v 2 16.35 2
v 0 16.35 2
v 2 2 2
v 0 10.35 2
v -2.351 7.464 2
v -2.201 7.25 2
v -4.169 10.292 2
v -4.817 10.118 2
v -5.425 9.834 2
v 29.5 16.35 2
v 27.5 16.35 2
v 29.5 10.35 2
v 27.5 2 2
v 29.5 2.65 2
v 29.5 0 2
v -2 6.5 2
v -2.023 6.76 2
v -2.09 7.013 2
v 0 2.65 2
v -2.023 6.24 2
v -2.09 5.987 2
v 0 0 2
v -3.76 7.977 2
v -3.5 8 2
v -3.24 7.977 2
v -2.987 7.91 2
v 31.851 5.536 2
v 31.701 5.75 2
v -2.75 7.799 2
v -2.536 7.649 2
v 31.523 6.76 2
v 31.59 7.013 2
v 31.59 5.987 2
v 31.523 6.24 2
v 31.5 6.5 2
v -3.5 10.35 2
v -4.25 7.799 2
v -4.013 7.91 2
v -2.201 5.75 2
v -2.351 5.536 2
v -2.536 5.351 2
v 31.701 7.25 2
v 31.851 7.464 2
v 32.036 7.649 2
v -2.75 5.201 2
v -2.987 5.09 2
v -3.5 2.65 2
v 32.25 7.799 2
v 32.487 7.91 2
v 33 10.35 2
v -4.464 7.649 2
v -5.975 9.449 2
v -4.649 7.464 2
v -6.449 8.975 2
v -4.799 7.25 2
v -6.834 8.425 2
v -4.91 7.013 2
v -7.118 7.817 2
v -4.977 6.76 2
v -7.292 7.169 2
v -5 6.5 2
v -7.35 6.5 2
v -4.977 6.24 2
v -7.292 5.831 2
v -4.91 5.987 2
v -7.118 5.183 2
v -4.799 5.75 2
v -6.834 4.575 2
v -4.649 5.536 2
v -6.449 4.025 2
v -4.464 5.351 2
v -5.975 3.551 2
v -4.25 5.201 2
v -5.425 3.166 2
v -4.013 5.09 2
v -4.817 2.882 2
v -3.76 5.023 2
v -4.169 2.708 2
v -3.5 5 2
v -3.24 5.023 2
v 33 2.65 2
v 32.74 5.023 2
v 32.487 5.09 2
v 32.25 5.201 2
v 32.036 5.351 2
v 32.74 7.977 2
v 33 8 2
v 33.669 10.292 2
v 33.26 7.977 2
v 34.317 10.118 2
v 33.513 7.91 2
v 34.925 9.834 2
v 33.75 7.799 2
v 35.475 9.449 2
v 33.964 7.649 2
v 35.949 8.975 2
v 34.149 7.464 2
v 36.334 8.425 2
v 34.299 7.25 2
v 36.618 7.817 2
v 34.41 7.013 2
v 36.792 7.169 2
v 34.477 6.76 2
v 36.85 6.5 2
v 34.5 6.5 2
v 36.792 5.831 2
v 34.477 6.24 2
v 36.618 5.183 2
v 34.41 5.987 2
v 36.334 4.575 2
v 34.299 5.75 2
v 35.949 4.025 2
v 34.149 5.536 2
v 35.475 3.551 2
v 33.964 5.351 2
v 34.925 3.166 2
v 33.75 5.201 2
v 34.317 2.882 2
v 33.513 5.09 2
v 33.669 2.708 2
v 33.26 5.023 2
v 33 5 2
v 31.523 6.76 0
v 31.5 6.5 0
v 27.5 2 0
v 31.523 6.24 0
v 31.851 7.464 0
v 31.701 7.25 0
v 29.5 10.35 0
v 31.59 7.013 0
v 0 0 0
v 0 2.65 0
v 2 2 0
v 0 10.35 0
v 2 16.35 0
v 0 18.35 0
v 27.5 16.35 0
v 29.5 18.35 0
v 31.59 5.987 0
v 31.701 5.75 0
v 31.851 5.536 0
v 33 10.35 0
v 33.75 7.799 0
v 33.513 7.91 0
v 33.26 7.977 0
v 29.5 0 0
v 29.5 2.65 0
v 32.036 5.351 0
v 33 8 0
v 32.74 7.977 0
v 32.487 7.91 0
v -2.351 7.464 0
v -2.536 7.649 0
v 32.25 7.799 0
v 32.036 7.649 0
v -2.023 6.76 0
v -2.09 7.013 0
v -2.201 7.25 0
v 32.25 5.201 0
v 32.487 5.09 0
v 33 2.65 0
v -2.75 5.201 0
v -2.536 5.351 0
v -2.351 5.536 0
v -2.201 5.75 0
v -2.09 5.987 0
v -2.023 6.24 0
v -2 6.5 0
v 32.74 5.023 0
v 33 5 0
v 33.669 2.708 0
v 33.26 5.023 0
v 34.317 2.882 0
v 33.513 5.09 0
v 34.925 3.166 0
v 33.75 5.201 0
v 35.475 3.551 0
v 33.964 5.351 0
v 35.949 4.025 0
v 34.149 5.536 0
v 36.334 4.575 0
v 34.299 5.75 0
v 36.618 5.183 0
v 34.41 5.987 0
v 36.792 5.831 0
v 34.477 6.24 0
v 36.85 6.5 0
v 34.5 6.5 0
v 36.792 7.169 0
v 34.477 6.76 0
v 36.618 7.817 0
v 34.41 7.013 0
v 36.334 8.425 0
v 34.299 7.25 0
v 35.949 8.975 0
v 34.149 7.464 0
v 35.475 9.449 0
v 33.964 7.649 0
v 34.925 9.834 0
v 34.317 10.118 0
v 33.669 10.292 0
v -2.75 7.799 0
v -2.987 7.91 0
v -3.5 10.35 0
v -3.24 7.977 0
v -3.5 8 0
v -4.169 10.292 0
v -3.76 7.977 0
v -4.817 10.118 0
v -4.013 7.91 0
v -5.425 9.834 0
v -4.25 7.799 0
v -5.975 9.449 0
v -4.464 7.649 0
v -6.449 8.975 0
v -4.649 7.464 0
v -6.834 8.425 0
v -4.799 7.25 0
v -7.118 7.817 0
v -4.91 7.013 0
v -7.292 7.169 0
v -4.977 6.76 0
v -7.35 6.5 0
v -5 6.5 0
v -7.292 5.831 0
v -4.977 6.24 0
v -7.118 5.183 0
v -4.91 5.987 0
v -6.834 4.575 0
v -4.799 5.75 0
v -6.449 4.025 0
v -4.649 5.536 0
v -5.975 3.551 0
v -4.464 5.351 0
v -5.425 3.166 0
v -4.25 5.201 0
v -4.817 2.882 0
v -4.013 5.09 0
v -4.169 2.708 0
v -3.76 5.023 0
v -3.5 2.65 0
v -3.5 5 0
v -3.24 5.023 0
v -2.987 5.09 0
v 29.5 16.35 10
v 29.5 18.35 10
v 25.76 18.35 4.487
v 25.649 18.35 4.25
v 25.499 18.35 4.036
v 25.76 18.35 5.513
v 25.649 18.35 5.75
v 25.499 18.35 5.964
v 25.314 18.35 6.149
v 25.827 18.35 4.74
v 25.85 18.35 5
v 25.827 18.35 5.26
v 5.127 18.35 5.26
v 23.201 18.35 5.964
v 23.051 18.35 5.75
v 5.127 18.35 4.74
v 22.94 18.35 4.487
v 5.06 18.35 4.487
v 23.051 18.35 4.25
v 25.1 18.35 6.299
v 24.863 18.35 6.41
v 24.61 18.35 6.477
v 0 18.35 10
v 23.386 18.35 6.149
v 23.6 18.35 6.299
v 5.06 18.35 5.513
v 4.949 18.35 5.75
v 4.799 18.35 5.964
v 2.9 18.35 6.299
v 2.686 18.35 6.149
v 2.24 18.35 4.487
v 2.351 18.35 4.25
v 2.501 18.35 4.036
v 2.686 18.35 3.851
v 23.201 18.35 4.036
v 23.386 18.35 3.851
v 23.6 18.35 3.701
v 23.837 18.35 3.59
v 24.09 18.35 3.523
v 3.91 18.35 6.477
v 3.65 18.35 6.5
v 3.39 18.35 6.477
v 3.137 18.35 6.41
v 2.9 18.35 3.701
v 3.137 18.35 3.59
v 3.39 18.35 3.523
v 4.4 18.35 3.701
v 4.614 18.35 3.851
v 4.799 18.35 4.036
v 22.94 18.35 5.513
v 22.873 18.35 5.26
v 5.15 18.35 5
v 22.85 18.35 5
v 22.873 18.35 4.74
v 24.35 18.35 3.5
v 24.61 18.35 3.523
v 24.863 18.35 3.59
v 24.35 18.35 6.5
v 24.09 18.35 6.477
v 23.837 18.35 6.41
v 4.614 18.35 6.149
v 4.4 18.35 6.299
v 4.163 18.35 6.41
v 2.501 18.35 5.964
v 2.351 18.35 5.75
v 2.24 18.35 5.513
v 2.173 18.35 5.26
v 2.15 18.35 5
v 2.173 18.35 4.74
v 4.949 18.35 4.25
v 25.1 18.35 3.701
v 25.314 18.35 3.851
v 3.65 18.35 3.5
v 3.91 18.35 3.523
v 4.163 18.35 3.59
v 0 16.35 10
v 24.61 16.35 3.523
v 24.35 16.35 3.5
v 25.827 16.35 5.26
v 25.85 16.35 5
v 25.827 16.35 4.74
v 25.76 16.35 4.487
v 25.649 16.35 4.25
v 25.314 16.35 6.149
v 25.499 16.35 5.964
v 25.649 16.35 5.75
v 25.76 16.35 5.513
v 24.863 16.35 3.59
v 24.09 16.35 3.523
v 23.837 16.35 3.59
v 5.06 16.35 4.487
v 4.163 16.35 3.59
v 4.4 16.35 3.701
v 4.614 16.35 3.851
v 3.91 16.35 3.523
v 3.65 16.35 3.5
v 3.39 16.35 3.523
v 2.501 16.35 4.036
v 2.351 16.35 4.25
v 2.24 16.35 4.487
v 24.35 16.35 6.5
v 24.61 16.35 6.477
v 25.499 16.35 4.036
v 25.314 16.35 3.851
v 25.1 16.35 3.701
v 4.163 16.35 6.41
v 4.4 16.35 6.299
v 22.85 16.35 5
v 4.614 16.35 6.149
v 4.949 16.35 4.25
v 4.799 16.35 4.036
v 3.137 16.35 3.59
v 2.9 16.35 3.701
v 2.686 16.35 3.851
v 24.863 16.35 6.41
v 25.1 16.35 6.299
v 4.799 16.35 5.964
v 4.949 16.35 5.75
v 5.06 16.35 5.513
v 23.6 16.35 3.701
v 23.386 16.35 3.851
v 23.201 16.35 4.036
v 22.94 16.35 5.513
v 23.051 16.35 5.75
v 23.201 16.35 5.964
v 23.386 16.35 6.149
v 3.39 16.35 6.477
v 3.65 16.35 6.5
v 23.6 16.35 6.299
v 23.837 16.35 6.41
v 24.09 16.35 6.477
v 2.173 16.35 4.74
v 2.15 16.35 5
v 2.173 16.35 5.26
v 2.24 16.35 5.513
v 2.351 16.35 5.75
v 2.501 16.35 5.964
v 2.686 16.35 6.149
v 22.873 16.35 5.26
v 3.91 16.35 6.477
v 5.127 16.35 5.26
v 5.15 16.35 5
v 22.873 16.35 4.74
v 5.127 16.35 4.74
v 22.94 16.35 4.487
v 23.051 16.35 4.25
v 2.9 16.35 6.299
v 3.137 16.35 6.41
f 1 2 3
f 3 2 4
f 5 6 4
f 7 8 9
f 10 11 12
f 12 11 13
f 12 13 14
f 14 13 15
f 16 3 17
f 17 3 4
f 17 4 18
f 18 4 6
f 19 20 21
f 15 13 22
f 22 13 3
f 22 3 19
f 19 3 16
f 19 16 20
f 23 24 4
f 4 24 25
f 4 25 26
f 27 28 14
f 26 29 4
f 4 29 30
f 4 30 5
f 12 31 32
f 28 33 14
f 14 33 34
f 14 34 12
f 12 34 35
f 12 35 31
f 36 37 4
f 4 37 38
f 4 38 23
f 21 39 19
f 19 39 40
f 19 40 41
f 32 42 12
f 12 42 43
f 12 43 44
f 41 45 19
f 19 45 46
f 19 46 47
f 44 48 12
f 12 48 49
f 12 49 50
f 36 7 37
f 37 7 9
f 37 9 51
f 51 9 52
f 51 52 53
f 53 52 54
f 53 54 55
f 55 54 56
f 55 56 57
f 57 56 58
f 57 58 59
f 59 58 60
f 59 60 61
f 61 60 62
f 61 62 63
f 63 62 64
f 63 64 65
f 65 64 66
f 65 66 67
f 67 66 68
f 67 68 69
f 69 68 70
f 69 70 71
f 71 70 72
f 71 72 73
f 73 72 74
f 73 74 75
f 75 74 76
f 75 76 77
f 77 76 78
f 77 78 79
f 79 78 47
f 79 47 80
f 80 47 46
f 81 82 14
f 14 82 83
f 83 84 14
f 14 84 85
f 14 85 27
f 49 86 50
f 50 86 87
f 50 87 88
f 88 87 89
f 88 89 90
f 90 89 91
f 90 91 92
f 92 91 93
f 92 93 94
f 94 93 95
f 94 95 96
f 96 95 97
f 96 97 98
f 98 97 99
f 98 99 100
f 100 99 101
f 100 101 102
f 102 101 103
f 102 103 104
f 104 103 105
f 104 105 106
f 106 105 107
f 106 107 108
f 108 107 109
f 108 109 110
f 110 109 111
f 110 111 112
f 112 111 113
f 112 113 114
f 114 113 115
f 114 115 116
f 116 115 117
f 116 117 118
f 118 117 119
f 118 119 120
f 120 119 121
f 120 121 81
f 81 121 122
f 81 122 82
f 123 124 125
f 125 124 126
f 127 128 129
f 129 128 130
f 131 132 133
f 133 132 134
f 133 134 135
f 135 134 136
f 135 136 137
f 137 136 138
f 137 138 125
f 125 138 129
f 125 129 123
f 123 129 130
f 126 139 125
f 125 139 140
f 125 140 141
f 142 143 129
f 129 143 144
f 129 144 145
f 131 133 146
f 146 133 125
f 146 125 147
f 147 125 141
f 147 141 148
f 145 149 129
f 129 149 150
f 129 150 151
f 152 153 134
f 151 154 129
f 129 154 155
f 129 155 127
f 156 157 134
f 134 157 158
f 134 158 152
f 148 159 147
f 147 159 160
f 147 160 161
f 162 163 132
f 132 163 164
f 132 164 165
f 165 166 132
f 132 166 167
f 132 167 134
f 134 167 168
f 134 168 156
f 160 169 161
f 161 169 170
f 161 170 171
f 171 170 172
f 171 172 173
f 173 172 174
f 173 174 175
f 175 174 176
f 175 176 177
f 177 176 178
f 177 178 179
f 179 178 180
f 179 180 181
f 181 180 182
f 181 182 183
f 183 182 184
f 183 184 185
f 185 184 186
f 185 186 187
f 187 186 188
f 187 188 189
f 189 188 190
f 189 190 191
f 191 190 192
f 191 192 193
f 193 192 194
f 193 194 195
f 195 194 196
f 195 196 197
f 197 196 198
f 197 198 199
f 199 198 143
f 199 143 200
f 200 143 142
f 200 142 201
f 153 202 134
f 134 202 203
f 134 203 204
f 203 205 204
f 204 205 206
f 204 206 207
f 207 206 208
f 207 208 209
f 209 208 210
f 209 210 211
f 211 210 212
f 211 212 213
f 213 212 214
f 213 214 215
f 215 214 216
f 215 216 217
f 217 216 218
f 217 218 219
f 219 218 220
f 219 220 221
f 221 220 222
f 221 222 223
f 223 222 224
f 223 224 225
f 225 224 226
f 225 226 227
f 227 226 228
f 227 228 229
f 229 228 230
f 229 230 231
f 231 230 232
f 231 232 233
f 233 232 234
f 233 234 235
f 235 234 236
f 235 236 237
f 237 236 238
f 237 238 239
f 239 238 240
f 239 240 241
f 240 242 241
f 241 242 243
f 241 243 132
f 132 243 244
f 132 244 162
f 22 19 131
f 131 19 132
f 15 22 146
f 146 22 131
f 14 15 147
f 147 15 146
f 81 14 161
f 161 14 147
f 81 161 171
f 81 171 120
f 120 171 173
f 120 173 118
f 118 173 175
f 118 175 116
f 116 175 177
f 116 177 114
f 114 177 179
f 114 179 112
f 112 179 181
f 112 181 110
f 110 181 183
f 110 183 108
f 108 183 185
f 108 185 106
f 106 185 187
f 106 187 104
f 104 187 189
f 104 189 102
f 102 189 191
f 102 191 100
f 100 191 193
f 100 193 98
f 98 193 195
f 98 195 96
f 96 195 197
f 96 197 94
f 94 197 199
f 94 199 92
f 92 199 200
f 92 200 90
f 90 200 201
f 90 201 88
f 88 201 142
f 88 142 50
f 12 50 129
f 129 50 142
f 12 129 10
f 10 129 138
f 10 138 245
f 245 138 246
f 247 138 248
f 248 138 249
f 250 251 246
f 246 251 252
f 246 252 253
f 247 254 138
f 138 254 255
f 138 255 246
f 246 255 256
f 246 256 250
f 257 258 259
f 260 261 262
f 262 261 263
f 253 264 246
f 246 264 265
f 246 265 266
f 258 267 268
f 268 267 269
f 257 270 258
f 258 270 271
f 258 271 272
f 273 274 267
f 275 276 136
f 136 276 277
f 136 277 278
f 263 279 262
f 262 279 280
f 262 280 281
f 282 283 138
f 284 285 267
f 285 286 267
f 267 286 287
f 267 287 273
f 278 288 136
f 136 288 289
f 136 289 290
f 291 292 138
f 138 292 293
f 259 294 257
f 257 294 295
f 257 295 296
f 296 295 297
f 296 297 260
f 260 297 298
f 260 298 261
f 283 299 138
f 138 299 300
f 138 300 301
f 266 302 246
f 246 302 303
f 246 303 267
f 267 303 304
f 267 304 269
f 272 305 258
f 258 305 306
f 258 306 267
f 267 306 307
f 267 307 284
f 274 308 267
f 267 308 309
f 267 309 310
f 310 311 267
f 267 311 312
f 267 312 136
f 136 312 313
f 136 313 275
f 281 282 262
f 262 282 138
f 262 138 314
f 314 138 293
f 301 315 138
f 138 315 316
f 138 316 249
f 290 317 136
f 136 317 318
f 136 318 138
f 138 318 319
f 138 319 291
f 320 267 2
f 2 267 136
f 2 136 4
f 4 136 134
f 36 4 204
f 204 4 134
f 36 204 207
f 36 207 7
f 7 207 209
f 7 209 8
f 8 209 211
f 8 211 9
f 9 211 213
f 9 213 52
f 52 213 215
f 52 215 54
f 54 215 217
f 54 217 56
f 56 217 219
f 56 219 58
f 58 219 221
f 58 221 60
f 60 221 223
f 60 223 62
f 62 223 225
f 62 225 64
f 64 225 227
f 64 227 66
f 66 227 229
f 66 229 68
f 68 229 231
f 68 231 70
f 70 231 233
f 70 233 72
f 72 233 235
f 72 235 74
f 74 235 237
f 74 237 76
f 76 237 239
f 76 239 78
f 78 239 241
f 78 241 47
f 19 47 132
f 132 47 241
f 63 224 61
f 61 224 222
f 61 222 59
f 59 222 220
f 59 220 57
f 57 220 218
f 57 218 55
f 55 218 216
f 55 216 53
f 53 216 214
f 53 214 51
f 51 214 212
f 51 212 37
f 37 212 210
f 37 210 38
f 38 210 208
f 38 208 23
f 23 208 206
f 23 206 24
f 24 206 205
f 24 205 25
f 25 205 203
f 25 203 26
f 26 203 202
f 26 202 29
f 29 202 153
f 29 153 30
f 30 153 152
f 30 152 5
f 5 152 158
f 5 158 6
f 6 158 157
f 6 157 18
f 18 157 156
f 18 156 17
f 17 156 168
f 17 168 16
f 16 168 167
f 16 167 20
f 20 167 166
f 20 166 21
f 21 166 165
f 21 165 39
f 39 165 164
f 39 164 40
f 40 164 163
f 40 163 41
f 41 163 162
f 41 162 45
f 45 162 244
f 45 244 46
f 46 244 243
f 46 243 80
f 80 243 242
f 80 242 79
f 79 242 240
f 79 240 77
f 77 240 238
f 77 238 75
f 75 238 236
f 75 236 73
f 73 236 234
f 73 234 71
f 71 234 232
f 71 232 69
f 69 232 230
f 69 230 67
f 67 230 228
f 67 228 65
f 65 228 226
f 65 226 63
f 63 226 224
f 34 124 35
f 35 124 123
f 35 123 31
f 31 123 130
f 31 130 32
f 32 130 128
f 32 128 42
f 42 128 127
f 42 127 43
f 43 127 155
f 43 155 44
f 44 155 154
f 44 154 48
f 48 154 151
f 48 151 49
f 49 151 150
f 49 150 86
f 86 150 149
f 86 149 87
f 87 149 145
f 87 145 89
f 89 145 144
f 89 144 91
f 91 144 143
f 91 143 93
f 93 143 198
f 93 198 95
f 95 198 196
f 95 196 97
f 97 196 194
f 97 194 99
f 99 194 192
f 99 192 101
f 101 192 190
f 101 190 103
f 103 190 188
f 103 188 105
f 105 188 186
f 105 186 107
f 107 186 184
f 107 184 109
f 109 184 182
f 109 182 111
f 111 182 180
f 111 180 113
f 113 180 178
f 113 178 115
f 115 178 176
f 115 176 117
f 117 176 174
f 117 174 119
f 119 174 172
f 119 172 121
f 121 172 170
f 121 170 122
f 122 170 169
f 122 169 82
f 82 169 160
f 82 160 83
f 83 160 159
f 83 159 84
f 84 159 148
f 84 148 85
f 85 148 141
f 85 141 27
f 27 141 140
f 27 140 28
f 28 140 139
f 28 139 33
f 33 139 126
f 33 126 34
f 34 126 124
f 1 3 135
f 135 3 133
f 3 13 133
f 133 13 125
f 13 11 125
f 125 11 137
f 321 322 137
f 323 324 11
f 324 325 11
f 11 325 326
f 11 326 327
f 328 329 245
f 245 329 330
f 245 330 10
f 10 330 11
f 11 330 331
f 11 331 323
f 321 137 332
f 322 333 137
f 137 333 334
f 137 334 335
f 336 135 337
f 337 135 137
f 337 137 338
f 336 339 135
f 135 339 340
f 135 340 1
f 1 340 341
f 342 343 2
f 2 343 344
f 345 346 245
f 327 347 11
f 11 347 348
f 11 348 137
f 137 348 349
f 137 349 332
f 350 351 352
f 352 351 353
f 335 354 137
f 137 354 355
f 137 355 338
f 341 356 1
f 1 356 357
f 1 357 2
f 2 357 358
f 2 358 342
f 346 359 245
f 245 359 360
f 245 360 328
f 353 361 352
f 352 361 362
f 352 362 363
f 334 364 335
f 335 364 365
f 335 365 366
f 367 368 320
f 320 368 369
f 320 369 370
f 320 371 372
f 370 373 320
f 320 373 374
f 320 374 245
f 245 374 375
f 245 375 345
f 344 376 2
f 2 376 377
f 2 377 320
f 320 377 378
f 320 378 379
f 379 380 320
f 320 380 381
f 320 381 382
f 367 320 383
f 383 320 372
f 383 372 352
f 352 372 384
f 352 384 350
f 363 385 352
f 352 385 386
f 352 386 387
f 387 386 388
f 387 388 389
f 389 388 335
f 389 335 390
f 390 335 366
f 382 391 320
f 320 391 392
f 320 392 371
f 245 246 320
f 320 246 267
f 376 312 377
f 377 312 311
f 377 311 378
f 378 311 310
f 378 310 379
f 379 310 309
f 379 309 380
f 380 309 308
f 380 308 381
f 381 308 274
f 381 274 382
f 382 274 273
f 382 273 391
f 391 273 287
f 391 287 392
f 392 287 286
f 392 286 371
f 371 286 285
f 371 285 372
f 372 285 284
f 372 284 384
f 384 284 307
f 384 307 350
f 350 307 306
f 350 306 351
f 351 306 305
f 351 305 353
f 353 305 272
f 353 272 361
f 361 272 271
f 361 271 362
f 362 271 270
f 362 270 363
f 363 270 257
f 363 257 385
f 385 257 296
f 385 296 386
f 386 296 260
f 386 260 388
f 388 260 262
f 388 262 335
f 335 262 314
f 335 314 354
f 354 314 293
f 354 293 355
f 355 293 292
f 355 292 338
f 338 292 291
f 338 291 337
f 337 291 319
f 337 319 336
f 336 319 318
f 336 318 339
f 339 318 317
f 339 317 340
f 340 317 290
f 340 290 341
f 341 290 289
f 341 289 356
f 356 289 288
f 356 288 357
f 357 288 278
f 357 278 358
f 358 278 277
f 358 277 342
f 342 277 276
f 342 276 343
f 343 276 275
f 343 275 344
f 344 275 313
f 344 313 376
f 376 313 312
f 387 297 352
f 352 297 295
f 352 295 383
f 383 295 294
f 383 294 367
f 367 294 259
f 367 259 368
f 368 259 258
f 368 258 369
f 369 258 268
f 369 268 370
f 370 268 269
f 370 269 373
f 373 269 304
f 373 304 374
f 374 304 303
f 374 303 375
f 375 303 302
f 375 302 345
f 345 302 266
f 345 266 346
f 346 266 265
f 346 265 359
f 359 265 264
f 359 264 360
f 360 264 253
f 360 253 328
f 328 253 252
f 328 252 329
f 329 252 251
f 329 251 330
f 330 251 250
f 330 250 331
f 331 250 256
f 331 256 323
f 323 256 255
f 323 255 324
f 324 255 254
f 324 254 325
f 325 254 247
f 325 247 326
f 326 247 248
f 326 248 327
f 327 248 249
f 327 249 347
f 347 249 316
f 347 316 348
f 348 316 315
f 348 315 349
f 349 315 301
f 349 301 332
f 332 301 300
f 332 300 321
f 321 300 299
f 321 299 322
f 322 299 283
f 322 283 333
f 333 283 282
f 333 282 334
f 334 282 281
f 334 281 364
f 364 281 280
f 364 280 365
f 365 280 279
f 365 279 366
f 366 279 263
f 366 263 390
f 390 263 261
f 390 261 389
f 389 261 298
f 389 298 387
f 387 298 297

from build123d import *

# Parameters (mm, degrees)
SKETCH1_R           = 1.5
SKETCH1_W           = 25.5
SKETCH1_H           = 14.35
BOSS_EXTRUDE1_DEPTH = 2
SKETCH2_W           = 29.5
SKETCH2_H           = 2
BOSS_EXTRUDE2_DEPTH = 8
SKETCH3_R           = 1.5
CUT_EXTRUDE1_DEPTH  = 8


with BuildPart() as part:
    # Sketch1 → Boss-Extrude1 (new body)
    with BuildSketch(Plane.XY):
        with BuildLine():
            Line((0, 18.35), (0, 10.35))
            Line((0, 10.35), (-3.5, 10.35))
            ThreePointArc((-3.5, 10.35), (-7.35, 6.5), (-3.5, 2.65))
            Line((-3.5, 2.65), (0, 2.65))
            Line((0, 2.65), (0, 0))
            Line((0, 0), (29.5, 0))
            Line((29.5, 0), (29.5, 2.65))
            Line((29.5, 2.65), (33, 2.65))
            ThreePointArc((33, 2.65), (36.85, 6.5), (33, 10.35))
            Line((33, 10.35), (29.5, 10.35))
            Line((29.5, 10.35), (29.5, 18.35))
            Line((29.5, 18.35), (0, 18.35))
        make_face()
        with Locations((-3.5, 6.5)):
            Circle(SKETCH1_R, mode=Mode.SUBTRACT)
        with Locations(Location((33, 6.5, 0), (0, 0, 180))):
            Circle(SKETCH1_R, mode=Mode.SUBTRACT)
        with Locations((14.75, 9.175)):
            Rectangle(SKETCH1_W, SKETCH1_H, mode=Mode.SUBTRACT)
    extrude(amount=BOSS_EXTRUDE1_DEPTH)

    # Sketch2 → Boss-Extrude2 (add)
    with BuildSketch(Plane.XY.offset(2)):
        with Locations((14.75, 17.35)):
            Rectangle(SKETCH2_W, SKETCH2_H)
    extrude(amount=BOSS_EXTRUDE2_DEPTH)

    # Sketch3 → Cut-Extrude1 (cut)
    with BuildSketch(Plane(origin=(0, 18.35, 0), x_dir=(1, 0, 0), z_dir=(0, 1, 0))):
        with Locations(Location((3.65, -5, 0), (0, 0, 180))):
            Circle(SKETCH3_R)
        with Locations(Location((24.35, -5, 0), (0, 0, 180))):
            Circle(SKETCH3_R)
    extrude(amount=-CUT_EXTRUDE1_DEPTH, mode=Mode.SUBTRACT)


solid = part.part
